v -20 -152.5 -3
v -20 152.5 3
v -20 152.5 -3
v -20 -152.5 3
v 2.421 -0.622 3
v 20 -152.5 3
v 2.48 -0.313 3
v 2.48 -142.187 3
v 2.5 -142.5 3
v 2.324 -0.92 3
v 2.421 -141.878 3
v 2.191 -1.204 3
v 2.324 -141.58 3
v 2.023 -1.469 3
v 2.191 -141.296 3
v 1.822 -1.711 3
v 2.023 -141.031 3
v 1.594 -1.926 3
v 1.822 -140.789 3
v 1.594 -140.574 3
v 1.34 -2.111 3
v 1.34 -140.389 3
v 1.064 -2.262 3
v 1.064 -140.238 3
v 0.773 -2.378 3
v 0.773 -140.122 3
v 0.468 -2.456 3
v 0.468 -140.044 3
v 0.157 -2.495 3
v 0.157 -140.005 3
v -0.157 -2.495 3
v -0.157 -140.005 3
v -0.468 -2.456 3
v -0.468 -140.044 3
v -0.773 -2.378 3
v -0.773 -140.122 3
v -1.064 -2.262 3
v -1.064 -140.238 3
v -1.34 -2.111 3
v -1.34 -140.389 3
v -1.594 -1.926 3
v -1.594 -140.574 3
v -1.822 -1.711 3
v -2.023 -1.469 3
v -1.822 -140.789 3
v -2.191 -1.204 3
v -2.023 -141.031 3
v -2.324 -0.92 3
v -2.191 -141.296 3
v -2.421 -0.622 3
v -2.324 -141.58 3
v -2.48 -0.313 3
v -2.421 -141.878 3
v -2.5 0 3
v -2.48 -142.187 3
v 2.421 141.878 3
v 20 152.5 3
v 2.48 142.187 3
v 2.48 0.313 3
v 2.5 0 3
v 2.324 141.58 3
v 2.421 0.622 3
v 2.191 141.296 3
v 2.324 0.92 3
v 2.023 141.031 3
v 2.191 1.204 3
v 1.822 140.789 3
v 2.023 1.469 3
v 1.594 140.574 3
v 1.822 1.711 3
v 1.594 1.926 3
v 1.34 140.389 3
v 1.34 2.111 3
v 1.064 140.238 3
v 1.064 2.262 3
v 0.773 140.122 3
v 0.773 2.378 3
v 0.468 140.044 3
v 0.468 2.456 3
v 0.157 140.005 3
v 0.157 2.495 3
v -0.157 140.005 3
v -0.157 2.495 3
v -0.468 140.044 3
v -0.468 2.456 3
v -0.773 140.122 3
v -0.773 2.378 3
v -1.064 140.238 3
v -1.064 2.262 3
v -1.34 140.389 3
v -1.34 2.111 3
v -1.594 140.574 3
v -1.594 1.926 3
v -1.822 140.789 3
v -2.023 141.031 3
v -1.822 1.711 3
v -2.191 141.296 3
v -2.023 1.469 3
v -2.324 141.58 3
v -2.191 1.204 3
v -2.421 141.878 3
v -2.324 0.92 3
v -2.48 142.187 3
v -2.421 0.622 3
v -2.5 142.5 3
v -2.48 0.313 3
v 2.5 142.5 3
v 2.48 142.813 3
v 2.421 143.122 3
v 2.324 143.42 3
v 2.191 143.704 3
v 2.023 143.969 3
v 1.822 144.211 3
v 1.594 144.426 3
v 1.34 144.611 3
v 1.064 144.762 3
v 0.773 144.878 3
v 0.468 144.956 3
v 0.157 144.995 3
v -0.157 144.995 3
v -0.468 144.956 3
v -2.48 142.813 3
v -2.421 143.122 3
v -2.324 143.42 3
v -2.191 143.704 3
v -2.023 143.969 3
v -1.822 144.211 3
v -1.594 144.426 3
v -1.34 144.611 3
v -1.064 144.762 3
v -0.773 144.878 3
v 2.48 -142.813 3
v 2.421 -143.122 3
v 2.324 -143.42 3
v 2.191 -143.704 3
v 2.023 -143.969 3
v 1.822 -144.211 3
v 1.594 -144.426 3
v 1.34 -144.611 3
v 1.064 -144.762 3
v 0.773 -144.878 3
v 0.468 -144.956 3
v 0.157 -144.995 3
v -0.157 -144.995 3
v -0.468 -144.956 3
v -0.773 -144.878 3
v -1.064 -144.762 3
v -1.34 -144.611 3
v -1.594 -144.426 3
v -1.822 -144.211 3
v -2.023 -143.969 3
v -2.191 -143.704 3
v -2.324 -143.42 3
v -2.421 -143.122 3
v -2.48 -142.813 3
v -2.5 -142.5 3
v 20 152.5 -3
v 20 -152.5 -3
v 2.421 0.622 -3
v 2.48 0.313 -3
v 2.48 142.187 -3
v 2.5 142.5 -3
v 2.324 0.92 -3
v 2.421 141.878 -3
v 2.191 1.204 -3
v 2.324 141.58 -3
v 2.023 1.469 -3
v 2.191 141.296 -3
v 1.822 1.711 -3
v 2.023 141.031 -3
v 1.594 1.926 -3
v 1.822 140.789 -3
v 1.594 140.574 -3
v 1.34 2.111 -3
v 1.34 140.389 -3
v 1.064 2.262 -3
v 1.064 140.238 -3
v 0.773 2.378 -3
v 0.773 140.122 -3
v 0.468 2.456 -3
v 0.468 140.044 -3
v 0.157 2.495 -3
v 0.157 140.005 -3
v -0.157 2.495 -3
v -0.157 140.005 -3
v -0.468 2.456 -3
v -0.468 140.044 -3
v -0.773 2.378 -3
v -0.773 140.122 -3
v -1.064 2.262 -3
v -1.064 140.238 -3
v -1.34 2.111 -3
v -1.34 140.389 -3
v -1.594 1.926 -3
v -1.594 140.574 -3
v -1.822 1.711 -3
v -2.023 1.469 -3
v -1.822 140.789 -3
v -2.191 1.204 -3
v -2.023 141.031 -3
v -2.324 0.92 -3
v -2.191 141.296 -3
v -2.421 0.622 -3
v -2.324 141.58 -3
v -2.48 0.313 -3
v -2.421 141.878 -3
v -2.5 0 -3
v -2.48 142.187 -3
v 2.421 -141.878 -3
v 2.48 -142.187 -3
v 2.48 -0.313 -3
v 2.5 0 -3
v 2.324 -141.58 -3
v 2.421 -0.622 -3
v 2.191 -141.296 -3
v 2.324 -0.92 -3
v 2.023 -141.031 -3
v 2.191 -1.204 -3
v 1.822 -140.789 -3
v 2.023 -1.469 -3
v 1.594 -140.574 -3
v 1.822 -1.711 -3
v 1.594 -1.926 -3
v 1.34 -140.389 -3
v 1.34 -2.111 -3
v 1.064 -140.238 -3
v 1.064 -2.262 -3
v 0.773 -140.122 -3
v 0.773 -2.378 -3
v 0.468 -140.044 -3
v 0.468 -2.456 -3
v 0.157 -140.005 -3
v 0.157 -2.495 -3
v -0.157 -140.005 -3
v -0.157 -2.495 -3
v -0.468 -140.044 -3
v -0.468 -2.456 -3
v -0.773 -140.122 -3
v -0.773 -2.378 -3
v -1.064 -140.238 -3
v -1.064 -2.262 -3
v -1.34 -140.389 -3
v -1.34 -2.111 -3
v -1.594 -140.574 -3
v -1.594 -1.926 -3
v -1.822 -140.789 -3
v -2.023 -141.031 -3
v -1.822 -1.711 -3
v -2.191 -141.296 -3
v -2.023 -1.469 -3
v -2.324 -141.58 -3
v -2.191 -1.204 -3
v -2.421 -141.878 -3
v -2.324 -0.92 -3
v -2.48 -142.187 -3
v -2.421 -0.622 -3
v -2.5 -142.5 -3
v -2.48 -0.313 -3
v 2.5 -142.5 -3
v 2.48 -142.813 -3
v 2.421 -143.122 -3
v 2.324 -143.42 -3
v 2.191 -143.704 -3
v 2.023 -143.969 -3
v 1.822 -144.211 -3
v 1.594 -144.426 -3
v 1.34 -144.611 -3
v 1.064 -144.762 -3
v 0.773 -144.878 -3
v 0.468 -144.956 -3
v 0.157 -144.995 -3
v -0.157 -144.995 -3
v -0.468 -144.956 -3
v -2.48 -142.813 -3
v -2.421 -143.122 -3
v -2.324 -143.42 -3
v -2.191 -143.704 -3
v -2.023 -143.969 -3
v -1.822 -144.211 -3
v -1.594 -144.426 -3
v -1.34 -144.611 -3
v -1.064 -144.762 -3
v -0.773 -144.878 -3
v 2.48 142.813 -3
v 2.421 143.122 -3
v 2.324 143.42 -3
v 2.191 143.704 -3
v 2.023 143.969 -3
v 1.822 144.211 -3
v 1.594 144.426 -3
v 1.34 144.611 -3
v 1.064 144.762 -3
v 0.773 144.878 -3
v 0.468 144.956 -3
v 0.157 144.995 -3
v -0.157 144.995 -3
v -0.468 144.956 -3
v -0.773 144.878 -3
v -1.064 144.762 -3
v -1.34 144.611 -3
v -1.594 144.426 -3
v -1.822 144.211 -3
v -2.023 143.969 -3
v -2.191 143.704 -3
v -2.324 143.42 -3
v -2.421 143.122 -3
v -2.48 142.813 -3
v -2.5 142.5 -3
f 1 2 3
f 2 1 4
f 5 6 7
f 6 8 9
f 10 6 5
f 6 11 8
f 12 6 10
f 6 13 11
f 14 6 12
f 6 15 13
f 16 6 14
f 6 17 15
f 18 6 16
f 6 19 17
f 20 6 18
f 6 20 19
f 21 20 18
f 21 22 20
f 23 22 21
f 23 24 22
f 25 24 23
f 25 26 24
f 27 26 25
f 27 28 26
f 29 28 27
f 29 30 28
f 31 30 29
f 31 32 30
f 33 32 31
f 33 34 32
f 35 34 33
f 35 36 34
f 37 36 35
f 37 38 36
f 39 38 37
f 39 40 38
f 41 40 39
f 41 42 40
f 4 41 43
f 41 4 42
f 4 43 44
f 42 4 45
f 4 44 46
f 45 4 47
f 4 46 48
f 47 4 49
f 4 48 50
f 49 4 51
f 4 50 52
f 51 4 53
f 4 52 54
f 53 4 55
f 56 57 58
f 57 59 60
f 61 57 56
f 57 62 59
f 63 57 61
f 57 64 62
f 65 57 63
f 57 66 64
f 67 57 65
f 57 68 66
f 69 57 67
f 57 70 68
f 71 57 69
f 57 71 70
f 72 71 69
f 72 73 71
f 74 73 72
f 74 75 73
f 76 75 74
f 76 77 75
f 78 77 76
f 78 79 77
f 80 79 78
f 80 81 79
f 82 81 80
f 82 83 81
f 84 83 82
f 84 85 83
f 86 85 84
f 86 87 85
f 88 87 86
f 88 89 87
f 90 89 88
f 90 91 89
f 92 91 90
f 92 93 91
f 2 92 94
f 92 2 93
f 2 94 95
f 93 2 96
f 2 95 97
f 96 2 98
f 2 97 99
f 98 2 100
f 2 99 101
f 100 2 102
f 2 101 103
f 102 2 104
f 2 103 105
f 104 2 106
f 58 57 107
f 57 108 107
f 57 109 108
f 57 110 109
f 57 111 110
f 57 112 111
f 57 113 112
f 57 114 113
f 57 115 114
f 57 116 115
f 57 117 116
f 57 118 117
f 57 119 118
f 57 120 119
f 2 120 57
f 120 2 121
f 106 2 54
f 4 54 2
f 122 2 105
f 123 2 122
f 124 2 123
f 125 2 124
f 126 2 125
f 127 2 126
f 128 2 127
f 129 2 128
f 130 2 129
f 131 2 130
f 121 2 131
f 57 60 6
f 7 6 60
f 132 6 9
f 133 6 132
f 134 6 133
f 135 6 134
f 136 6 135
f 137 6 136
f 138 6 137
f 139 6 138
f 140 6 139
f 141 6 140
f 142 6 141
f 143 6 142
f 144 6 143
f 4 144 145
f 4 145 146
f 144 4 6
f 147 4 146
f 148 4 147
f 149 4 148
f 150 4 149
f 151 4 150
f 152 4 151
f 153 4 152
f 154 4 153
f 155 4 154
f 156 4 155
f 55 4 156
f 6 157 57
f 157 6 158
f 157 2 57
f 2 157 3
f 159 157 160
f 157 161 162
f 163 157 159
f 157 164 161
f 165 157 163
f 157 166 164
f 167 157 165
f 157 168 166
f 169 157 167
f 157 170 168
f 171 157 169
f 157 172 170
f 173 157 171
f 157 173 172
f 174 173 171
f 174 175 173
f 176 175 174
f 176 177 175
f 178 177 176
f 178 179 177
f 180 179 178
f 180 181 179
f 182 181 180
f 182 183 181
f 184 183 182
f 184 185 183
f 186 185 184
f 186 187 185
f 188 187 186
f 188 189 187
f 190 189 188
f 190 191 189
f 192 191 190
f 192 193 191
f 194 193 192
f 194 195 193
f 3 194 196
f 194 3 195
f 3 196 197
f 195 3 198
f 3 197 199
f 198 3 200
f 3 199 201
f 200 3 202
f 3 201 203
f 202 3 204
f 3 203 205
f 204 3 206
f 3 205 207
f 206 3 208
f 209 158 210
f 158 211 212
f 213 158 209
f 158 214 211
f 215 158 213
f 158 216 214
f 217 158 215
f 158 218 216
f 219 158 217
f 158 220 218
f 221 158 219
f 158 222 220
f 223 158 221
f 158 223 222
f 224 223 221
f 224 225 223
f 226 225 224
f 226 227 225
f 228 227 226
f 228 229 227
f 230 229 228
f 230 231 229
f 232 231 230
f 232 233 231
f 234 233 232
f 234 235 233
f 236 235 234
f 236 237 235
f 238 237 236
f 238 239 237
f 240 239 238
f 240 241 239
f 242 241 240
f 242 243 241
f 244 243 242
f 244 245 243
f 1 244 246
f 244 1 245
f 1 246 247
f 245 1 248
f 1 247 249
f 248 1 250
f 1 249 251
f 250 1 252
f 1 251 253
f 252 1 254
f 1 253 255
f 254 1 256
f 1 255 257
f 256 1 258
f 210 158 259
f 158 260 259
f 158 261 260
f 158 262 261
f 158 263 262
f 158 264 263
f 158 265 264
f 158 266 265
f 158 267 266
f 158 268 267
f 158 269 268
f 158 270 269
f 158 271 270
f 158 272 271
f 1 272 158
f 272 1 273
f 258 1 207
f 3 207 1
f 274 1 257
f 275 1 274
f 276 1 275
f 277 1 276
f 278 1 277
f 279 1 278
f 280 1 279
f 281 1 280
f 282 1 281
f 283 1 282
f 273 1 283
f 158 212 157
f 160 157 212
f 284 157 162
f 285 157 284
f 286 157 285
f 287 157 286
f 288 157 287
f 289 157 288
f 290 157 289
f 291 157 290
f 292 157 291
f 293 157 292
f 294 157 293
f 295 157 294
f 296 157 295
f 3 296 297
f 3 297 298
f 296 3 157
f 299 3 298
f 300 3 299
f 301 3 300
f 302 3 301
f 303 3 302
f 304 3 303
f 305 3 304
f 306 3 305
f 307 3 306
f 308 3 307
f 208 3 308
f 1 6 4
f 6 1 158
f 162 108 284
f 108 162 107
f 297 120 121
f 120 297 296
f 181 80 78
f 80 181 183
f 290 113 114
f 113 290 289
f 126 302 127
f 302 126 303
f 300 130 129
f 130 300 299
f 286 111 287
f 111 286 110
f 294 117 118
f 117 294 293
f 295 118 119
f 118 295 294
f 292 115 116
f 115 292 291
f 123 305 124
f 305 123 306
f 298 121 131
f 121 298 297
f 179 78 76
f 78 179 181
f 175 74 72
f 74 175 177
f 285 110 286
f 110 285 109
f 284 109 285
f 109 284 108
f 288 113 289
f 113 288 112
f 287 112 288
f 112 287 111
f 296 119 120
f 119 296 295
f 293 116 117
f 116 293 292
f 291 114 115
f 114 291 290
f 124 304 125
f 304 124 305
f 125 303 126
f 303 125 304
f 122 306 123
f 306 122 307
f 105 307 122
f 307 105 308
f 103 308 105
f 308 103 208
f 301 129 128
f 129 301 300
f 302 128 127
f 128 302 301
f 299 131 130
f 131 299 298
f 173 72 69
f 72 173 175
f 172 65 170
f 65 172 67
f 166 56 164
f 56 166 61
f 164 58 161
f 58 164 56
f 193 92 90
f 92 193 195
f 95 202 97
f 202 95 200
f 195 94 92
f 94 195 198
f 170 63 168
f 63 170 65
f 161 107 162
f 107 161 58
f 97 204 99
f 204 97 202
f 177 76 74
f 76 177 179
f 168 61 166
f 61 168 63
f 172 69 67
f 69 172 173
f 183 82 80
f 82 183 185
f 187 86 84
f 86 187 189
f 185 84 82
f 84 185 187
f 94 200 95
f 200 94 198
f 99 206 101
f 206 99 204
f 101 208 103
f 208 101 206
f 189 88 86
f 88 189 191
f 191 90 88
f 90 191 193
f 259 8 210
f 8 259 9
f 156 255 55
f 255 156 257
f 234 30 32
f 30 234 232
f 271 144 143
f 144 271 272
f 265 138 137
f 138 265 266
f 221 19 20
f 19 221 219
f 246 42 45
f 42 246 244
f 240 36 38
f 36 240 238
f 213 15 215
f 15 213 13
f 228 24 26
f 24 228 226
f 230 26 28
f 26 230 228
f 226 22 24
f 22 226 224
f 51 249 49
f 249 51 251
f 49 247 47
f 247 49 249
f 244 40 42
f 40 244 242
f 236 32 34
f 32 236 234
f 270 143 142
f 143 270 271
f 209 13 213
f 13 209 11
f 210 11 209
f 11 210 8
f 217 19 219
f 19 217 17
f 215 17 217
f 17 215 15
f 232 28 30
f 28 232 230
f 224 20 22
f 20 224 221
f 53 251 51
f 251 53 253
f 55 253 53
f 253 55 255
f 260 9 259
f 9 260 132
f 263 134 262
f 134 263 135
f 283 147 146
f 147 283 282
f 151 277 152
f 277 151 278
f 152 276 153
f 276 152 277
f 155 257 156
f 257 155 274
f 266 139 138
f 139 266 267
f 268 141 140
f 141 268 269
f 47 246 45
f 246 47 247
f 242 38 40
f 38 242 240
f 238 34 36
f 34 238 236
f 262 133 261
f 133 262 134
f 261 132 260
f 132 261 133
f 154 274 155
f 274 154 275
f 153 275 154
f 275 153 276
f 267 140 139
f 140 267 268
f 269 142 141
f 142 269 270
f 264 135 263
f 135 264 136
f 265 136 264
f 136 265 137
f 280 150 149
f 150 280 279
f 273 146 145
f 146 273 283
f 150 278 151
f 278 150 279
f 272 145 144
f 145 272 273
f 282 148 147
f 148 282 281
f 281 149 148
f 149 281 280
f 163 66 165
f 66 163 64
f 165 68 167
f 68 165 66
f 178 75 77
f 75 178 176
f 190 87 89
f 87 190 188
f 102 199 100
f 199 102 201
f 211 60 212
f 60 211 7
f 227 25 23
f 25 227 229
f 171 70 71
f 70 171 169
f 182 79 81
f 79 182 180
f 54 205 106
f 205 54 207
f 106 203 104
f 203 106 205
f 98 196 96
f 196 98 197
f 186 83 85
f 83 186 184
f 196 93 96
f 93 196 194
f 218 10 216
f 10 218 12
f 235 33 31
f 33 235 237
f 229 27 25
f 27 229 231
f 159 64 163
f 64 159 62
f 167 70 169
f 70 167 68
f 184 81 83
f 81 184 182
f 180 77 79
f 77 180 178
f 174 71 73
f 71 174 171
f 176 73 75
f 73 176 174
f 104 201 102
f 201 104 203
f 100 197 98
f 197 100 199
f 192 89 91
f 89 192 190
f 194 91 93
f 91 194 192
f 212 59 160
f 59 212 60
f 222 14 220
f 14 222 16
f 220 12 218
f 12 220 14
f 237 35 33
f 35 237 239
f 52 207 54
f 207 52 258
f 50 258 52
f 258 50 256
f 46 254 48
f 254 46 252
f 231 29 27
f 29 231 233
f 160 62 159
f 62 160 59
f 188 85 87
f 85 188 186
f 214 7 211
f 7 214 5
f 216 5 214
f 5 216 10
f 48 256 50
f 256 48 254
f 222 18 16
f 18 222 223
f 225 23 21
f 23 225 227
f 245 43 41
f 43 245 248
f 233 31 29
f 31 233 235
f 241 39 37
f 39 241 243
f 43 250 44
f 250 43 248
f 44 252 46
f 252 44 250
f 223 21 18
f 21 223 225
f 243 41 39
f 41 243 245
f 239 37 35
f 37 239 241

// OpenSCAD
PLATTER_D = 254;
PLATTER_THICKNESS = 3.25;
//bearing holder
BH_D = 115.85;
BH_H = 16 - 3.84;
//bearing
BEARING_D = 28.75;
BEARING_ID = 12.8;
BEARING_H = 8;

//alt bearings
//BEARING_D = 20;
//BEARING_ID = 8;
//BEARING_H = 8;

//bolt placement
BOLT_D = 5;
BOLT_W = 80.4;
BOLT_HEAD_D = 6.36;
BOLT_HEAD_H = 5;

BOLT_HEX = 8.1;
BOLT_HEX_H = 3.25;

HANDLE_MOUNT_L = 305;
HANDLE_MOUNT_W = 40;
HANDLE_MOUNT_THICKNESS = 6;
HANDLE_MOUNT_BOLT_L = 285;
HANDLE_MOUNT_BOLT_D = 5;

module hexagon(size, height) {
  boxWidth = size/1.75;
  for (r = [-60, 0, 60]) rotate([0,0,r]) cube([boxWidth, size, height], true);
}

module bolt_voids () {
    $fn = 100;
    for (i = [0 : 4]) {
        rotate([0, 0, i * (360 / 4)]) translate([BOLT_W / 2, 0, 0]) cylinder(r = BOLT_D / 2, h = 50, center = true);    
    }
}

module bolt_head_voids () {
    for (i = [0 : 2]) {
        rotate([0, 0, i * (360 / 2)]) {
            translate([BOLT_W / 2, 0, (BH_H / 2) - BOLT_HEAD_H / 2 + 0.01]) {
                cylinder(r = BOLT_HEAD_D / 2, h = BOLT_HEAD_H, center = true);
            }
        }    
    }    
}

module bolt_hex_voids () {
   rotate([0, 0, 90]) for (i = [0 : 2]) {
        rotate([0, 0, i * (360 / 2)]) {
            translate([BOLT_W / 2, 0, (BH_H / 2) - (BOLT_HEX_H / 2) + 0.01]) {
                hexagon(BOLT_HEX, BOLT_HEX_H);
            }
        }    
    } 
    
}

module platter () {
    difference () {
        //main shape
        cylinder(r = PLATTER_D / 2, h = PLATTER_THICKNESS, $fn = 360);
        bolt_voids();
        cylinder(r = (BEARING_ID - 4) / 2, h = 50, center = true, $fn = 60);
    }
}

module bearing_holder () {
    $fn = 100;
    difference () {
        //main shape
        cylinder(r = BH_D / 2, h = BH_H, $fn = 360, center = true);
        //bolts
        bolt_voids();
        bolt_head_voids();
        bolt_hex_voids();
        //inner void
        cylinder(r = BEARING_ID / 2, h = 50, center = true, $fn = 60);
        //bearing void
        translate([0, 0, -(BH_H / 2) + (BEARING_H / 2) - 0.1]) {
            cylinder(r = BEARING_D / 2, h = BEARING_H, center = true);
        }
    }
}

module bearing_holder_test () {
    translate([0, 0, (PLATTER_THICKNESS / 2) + (BH_H / 2)]) {
        intersection() {
            bearing_holder();
            translate([BH_D / 4 - 10, BH_D / 4 - 10, 0]) cube([BH_D / 2 + 20, BH_D / 2 + 20, BH_H + 2], center = true);
        }
    }
}


module handle_mount () {
    difference() {
        cube([HANDLE_MOUNT_W, HANDLE_MOUNT_L, HANDLE_MOUNT_THICKNESS], center = true);
        translate ([0, HANDLE_MOUNT_BOLT_L / 2, 0]) {
            cylinder(r = HANDLE_MOUNT_BOLT_D / 2, h = 10, center = true, $fn = 50);
        }
        translate ([0, -HANDLE_MOUNT_BOLT_L / 2, 0]) {
            cylinder(r = HANDLE_MOUNT_BOLT_D / 2, h = 10, center = true, $fn = 50);
        }
        cylinder(r = HANDLE_MOUNT_BOLT_D / 2, h = 10, center = true, $fn = 50);
    }
}
//platter();
//projection() platter();
//bolt_hex_voids();
handle_mount();
